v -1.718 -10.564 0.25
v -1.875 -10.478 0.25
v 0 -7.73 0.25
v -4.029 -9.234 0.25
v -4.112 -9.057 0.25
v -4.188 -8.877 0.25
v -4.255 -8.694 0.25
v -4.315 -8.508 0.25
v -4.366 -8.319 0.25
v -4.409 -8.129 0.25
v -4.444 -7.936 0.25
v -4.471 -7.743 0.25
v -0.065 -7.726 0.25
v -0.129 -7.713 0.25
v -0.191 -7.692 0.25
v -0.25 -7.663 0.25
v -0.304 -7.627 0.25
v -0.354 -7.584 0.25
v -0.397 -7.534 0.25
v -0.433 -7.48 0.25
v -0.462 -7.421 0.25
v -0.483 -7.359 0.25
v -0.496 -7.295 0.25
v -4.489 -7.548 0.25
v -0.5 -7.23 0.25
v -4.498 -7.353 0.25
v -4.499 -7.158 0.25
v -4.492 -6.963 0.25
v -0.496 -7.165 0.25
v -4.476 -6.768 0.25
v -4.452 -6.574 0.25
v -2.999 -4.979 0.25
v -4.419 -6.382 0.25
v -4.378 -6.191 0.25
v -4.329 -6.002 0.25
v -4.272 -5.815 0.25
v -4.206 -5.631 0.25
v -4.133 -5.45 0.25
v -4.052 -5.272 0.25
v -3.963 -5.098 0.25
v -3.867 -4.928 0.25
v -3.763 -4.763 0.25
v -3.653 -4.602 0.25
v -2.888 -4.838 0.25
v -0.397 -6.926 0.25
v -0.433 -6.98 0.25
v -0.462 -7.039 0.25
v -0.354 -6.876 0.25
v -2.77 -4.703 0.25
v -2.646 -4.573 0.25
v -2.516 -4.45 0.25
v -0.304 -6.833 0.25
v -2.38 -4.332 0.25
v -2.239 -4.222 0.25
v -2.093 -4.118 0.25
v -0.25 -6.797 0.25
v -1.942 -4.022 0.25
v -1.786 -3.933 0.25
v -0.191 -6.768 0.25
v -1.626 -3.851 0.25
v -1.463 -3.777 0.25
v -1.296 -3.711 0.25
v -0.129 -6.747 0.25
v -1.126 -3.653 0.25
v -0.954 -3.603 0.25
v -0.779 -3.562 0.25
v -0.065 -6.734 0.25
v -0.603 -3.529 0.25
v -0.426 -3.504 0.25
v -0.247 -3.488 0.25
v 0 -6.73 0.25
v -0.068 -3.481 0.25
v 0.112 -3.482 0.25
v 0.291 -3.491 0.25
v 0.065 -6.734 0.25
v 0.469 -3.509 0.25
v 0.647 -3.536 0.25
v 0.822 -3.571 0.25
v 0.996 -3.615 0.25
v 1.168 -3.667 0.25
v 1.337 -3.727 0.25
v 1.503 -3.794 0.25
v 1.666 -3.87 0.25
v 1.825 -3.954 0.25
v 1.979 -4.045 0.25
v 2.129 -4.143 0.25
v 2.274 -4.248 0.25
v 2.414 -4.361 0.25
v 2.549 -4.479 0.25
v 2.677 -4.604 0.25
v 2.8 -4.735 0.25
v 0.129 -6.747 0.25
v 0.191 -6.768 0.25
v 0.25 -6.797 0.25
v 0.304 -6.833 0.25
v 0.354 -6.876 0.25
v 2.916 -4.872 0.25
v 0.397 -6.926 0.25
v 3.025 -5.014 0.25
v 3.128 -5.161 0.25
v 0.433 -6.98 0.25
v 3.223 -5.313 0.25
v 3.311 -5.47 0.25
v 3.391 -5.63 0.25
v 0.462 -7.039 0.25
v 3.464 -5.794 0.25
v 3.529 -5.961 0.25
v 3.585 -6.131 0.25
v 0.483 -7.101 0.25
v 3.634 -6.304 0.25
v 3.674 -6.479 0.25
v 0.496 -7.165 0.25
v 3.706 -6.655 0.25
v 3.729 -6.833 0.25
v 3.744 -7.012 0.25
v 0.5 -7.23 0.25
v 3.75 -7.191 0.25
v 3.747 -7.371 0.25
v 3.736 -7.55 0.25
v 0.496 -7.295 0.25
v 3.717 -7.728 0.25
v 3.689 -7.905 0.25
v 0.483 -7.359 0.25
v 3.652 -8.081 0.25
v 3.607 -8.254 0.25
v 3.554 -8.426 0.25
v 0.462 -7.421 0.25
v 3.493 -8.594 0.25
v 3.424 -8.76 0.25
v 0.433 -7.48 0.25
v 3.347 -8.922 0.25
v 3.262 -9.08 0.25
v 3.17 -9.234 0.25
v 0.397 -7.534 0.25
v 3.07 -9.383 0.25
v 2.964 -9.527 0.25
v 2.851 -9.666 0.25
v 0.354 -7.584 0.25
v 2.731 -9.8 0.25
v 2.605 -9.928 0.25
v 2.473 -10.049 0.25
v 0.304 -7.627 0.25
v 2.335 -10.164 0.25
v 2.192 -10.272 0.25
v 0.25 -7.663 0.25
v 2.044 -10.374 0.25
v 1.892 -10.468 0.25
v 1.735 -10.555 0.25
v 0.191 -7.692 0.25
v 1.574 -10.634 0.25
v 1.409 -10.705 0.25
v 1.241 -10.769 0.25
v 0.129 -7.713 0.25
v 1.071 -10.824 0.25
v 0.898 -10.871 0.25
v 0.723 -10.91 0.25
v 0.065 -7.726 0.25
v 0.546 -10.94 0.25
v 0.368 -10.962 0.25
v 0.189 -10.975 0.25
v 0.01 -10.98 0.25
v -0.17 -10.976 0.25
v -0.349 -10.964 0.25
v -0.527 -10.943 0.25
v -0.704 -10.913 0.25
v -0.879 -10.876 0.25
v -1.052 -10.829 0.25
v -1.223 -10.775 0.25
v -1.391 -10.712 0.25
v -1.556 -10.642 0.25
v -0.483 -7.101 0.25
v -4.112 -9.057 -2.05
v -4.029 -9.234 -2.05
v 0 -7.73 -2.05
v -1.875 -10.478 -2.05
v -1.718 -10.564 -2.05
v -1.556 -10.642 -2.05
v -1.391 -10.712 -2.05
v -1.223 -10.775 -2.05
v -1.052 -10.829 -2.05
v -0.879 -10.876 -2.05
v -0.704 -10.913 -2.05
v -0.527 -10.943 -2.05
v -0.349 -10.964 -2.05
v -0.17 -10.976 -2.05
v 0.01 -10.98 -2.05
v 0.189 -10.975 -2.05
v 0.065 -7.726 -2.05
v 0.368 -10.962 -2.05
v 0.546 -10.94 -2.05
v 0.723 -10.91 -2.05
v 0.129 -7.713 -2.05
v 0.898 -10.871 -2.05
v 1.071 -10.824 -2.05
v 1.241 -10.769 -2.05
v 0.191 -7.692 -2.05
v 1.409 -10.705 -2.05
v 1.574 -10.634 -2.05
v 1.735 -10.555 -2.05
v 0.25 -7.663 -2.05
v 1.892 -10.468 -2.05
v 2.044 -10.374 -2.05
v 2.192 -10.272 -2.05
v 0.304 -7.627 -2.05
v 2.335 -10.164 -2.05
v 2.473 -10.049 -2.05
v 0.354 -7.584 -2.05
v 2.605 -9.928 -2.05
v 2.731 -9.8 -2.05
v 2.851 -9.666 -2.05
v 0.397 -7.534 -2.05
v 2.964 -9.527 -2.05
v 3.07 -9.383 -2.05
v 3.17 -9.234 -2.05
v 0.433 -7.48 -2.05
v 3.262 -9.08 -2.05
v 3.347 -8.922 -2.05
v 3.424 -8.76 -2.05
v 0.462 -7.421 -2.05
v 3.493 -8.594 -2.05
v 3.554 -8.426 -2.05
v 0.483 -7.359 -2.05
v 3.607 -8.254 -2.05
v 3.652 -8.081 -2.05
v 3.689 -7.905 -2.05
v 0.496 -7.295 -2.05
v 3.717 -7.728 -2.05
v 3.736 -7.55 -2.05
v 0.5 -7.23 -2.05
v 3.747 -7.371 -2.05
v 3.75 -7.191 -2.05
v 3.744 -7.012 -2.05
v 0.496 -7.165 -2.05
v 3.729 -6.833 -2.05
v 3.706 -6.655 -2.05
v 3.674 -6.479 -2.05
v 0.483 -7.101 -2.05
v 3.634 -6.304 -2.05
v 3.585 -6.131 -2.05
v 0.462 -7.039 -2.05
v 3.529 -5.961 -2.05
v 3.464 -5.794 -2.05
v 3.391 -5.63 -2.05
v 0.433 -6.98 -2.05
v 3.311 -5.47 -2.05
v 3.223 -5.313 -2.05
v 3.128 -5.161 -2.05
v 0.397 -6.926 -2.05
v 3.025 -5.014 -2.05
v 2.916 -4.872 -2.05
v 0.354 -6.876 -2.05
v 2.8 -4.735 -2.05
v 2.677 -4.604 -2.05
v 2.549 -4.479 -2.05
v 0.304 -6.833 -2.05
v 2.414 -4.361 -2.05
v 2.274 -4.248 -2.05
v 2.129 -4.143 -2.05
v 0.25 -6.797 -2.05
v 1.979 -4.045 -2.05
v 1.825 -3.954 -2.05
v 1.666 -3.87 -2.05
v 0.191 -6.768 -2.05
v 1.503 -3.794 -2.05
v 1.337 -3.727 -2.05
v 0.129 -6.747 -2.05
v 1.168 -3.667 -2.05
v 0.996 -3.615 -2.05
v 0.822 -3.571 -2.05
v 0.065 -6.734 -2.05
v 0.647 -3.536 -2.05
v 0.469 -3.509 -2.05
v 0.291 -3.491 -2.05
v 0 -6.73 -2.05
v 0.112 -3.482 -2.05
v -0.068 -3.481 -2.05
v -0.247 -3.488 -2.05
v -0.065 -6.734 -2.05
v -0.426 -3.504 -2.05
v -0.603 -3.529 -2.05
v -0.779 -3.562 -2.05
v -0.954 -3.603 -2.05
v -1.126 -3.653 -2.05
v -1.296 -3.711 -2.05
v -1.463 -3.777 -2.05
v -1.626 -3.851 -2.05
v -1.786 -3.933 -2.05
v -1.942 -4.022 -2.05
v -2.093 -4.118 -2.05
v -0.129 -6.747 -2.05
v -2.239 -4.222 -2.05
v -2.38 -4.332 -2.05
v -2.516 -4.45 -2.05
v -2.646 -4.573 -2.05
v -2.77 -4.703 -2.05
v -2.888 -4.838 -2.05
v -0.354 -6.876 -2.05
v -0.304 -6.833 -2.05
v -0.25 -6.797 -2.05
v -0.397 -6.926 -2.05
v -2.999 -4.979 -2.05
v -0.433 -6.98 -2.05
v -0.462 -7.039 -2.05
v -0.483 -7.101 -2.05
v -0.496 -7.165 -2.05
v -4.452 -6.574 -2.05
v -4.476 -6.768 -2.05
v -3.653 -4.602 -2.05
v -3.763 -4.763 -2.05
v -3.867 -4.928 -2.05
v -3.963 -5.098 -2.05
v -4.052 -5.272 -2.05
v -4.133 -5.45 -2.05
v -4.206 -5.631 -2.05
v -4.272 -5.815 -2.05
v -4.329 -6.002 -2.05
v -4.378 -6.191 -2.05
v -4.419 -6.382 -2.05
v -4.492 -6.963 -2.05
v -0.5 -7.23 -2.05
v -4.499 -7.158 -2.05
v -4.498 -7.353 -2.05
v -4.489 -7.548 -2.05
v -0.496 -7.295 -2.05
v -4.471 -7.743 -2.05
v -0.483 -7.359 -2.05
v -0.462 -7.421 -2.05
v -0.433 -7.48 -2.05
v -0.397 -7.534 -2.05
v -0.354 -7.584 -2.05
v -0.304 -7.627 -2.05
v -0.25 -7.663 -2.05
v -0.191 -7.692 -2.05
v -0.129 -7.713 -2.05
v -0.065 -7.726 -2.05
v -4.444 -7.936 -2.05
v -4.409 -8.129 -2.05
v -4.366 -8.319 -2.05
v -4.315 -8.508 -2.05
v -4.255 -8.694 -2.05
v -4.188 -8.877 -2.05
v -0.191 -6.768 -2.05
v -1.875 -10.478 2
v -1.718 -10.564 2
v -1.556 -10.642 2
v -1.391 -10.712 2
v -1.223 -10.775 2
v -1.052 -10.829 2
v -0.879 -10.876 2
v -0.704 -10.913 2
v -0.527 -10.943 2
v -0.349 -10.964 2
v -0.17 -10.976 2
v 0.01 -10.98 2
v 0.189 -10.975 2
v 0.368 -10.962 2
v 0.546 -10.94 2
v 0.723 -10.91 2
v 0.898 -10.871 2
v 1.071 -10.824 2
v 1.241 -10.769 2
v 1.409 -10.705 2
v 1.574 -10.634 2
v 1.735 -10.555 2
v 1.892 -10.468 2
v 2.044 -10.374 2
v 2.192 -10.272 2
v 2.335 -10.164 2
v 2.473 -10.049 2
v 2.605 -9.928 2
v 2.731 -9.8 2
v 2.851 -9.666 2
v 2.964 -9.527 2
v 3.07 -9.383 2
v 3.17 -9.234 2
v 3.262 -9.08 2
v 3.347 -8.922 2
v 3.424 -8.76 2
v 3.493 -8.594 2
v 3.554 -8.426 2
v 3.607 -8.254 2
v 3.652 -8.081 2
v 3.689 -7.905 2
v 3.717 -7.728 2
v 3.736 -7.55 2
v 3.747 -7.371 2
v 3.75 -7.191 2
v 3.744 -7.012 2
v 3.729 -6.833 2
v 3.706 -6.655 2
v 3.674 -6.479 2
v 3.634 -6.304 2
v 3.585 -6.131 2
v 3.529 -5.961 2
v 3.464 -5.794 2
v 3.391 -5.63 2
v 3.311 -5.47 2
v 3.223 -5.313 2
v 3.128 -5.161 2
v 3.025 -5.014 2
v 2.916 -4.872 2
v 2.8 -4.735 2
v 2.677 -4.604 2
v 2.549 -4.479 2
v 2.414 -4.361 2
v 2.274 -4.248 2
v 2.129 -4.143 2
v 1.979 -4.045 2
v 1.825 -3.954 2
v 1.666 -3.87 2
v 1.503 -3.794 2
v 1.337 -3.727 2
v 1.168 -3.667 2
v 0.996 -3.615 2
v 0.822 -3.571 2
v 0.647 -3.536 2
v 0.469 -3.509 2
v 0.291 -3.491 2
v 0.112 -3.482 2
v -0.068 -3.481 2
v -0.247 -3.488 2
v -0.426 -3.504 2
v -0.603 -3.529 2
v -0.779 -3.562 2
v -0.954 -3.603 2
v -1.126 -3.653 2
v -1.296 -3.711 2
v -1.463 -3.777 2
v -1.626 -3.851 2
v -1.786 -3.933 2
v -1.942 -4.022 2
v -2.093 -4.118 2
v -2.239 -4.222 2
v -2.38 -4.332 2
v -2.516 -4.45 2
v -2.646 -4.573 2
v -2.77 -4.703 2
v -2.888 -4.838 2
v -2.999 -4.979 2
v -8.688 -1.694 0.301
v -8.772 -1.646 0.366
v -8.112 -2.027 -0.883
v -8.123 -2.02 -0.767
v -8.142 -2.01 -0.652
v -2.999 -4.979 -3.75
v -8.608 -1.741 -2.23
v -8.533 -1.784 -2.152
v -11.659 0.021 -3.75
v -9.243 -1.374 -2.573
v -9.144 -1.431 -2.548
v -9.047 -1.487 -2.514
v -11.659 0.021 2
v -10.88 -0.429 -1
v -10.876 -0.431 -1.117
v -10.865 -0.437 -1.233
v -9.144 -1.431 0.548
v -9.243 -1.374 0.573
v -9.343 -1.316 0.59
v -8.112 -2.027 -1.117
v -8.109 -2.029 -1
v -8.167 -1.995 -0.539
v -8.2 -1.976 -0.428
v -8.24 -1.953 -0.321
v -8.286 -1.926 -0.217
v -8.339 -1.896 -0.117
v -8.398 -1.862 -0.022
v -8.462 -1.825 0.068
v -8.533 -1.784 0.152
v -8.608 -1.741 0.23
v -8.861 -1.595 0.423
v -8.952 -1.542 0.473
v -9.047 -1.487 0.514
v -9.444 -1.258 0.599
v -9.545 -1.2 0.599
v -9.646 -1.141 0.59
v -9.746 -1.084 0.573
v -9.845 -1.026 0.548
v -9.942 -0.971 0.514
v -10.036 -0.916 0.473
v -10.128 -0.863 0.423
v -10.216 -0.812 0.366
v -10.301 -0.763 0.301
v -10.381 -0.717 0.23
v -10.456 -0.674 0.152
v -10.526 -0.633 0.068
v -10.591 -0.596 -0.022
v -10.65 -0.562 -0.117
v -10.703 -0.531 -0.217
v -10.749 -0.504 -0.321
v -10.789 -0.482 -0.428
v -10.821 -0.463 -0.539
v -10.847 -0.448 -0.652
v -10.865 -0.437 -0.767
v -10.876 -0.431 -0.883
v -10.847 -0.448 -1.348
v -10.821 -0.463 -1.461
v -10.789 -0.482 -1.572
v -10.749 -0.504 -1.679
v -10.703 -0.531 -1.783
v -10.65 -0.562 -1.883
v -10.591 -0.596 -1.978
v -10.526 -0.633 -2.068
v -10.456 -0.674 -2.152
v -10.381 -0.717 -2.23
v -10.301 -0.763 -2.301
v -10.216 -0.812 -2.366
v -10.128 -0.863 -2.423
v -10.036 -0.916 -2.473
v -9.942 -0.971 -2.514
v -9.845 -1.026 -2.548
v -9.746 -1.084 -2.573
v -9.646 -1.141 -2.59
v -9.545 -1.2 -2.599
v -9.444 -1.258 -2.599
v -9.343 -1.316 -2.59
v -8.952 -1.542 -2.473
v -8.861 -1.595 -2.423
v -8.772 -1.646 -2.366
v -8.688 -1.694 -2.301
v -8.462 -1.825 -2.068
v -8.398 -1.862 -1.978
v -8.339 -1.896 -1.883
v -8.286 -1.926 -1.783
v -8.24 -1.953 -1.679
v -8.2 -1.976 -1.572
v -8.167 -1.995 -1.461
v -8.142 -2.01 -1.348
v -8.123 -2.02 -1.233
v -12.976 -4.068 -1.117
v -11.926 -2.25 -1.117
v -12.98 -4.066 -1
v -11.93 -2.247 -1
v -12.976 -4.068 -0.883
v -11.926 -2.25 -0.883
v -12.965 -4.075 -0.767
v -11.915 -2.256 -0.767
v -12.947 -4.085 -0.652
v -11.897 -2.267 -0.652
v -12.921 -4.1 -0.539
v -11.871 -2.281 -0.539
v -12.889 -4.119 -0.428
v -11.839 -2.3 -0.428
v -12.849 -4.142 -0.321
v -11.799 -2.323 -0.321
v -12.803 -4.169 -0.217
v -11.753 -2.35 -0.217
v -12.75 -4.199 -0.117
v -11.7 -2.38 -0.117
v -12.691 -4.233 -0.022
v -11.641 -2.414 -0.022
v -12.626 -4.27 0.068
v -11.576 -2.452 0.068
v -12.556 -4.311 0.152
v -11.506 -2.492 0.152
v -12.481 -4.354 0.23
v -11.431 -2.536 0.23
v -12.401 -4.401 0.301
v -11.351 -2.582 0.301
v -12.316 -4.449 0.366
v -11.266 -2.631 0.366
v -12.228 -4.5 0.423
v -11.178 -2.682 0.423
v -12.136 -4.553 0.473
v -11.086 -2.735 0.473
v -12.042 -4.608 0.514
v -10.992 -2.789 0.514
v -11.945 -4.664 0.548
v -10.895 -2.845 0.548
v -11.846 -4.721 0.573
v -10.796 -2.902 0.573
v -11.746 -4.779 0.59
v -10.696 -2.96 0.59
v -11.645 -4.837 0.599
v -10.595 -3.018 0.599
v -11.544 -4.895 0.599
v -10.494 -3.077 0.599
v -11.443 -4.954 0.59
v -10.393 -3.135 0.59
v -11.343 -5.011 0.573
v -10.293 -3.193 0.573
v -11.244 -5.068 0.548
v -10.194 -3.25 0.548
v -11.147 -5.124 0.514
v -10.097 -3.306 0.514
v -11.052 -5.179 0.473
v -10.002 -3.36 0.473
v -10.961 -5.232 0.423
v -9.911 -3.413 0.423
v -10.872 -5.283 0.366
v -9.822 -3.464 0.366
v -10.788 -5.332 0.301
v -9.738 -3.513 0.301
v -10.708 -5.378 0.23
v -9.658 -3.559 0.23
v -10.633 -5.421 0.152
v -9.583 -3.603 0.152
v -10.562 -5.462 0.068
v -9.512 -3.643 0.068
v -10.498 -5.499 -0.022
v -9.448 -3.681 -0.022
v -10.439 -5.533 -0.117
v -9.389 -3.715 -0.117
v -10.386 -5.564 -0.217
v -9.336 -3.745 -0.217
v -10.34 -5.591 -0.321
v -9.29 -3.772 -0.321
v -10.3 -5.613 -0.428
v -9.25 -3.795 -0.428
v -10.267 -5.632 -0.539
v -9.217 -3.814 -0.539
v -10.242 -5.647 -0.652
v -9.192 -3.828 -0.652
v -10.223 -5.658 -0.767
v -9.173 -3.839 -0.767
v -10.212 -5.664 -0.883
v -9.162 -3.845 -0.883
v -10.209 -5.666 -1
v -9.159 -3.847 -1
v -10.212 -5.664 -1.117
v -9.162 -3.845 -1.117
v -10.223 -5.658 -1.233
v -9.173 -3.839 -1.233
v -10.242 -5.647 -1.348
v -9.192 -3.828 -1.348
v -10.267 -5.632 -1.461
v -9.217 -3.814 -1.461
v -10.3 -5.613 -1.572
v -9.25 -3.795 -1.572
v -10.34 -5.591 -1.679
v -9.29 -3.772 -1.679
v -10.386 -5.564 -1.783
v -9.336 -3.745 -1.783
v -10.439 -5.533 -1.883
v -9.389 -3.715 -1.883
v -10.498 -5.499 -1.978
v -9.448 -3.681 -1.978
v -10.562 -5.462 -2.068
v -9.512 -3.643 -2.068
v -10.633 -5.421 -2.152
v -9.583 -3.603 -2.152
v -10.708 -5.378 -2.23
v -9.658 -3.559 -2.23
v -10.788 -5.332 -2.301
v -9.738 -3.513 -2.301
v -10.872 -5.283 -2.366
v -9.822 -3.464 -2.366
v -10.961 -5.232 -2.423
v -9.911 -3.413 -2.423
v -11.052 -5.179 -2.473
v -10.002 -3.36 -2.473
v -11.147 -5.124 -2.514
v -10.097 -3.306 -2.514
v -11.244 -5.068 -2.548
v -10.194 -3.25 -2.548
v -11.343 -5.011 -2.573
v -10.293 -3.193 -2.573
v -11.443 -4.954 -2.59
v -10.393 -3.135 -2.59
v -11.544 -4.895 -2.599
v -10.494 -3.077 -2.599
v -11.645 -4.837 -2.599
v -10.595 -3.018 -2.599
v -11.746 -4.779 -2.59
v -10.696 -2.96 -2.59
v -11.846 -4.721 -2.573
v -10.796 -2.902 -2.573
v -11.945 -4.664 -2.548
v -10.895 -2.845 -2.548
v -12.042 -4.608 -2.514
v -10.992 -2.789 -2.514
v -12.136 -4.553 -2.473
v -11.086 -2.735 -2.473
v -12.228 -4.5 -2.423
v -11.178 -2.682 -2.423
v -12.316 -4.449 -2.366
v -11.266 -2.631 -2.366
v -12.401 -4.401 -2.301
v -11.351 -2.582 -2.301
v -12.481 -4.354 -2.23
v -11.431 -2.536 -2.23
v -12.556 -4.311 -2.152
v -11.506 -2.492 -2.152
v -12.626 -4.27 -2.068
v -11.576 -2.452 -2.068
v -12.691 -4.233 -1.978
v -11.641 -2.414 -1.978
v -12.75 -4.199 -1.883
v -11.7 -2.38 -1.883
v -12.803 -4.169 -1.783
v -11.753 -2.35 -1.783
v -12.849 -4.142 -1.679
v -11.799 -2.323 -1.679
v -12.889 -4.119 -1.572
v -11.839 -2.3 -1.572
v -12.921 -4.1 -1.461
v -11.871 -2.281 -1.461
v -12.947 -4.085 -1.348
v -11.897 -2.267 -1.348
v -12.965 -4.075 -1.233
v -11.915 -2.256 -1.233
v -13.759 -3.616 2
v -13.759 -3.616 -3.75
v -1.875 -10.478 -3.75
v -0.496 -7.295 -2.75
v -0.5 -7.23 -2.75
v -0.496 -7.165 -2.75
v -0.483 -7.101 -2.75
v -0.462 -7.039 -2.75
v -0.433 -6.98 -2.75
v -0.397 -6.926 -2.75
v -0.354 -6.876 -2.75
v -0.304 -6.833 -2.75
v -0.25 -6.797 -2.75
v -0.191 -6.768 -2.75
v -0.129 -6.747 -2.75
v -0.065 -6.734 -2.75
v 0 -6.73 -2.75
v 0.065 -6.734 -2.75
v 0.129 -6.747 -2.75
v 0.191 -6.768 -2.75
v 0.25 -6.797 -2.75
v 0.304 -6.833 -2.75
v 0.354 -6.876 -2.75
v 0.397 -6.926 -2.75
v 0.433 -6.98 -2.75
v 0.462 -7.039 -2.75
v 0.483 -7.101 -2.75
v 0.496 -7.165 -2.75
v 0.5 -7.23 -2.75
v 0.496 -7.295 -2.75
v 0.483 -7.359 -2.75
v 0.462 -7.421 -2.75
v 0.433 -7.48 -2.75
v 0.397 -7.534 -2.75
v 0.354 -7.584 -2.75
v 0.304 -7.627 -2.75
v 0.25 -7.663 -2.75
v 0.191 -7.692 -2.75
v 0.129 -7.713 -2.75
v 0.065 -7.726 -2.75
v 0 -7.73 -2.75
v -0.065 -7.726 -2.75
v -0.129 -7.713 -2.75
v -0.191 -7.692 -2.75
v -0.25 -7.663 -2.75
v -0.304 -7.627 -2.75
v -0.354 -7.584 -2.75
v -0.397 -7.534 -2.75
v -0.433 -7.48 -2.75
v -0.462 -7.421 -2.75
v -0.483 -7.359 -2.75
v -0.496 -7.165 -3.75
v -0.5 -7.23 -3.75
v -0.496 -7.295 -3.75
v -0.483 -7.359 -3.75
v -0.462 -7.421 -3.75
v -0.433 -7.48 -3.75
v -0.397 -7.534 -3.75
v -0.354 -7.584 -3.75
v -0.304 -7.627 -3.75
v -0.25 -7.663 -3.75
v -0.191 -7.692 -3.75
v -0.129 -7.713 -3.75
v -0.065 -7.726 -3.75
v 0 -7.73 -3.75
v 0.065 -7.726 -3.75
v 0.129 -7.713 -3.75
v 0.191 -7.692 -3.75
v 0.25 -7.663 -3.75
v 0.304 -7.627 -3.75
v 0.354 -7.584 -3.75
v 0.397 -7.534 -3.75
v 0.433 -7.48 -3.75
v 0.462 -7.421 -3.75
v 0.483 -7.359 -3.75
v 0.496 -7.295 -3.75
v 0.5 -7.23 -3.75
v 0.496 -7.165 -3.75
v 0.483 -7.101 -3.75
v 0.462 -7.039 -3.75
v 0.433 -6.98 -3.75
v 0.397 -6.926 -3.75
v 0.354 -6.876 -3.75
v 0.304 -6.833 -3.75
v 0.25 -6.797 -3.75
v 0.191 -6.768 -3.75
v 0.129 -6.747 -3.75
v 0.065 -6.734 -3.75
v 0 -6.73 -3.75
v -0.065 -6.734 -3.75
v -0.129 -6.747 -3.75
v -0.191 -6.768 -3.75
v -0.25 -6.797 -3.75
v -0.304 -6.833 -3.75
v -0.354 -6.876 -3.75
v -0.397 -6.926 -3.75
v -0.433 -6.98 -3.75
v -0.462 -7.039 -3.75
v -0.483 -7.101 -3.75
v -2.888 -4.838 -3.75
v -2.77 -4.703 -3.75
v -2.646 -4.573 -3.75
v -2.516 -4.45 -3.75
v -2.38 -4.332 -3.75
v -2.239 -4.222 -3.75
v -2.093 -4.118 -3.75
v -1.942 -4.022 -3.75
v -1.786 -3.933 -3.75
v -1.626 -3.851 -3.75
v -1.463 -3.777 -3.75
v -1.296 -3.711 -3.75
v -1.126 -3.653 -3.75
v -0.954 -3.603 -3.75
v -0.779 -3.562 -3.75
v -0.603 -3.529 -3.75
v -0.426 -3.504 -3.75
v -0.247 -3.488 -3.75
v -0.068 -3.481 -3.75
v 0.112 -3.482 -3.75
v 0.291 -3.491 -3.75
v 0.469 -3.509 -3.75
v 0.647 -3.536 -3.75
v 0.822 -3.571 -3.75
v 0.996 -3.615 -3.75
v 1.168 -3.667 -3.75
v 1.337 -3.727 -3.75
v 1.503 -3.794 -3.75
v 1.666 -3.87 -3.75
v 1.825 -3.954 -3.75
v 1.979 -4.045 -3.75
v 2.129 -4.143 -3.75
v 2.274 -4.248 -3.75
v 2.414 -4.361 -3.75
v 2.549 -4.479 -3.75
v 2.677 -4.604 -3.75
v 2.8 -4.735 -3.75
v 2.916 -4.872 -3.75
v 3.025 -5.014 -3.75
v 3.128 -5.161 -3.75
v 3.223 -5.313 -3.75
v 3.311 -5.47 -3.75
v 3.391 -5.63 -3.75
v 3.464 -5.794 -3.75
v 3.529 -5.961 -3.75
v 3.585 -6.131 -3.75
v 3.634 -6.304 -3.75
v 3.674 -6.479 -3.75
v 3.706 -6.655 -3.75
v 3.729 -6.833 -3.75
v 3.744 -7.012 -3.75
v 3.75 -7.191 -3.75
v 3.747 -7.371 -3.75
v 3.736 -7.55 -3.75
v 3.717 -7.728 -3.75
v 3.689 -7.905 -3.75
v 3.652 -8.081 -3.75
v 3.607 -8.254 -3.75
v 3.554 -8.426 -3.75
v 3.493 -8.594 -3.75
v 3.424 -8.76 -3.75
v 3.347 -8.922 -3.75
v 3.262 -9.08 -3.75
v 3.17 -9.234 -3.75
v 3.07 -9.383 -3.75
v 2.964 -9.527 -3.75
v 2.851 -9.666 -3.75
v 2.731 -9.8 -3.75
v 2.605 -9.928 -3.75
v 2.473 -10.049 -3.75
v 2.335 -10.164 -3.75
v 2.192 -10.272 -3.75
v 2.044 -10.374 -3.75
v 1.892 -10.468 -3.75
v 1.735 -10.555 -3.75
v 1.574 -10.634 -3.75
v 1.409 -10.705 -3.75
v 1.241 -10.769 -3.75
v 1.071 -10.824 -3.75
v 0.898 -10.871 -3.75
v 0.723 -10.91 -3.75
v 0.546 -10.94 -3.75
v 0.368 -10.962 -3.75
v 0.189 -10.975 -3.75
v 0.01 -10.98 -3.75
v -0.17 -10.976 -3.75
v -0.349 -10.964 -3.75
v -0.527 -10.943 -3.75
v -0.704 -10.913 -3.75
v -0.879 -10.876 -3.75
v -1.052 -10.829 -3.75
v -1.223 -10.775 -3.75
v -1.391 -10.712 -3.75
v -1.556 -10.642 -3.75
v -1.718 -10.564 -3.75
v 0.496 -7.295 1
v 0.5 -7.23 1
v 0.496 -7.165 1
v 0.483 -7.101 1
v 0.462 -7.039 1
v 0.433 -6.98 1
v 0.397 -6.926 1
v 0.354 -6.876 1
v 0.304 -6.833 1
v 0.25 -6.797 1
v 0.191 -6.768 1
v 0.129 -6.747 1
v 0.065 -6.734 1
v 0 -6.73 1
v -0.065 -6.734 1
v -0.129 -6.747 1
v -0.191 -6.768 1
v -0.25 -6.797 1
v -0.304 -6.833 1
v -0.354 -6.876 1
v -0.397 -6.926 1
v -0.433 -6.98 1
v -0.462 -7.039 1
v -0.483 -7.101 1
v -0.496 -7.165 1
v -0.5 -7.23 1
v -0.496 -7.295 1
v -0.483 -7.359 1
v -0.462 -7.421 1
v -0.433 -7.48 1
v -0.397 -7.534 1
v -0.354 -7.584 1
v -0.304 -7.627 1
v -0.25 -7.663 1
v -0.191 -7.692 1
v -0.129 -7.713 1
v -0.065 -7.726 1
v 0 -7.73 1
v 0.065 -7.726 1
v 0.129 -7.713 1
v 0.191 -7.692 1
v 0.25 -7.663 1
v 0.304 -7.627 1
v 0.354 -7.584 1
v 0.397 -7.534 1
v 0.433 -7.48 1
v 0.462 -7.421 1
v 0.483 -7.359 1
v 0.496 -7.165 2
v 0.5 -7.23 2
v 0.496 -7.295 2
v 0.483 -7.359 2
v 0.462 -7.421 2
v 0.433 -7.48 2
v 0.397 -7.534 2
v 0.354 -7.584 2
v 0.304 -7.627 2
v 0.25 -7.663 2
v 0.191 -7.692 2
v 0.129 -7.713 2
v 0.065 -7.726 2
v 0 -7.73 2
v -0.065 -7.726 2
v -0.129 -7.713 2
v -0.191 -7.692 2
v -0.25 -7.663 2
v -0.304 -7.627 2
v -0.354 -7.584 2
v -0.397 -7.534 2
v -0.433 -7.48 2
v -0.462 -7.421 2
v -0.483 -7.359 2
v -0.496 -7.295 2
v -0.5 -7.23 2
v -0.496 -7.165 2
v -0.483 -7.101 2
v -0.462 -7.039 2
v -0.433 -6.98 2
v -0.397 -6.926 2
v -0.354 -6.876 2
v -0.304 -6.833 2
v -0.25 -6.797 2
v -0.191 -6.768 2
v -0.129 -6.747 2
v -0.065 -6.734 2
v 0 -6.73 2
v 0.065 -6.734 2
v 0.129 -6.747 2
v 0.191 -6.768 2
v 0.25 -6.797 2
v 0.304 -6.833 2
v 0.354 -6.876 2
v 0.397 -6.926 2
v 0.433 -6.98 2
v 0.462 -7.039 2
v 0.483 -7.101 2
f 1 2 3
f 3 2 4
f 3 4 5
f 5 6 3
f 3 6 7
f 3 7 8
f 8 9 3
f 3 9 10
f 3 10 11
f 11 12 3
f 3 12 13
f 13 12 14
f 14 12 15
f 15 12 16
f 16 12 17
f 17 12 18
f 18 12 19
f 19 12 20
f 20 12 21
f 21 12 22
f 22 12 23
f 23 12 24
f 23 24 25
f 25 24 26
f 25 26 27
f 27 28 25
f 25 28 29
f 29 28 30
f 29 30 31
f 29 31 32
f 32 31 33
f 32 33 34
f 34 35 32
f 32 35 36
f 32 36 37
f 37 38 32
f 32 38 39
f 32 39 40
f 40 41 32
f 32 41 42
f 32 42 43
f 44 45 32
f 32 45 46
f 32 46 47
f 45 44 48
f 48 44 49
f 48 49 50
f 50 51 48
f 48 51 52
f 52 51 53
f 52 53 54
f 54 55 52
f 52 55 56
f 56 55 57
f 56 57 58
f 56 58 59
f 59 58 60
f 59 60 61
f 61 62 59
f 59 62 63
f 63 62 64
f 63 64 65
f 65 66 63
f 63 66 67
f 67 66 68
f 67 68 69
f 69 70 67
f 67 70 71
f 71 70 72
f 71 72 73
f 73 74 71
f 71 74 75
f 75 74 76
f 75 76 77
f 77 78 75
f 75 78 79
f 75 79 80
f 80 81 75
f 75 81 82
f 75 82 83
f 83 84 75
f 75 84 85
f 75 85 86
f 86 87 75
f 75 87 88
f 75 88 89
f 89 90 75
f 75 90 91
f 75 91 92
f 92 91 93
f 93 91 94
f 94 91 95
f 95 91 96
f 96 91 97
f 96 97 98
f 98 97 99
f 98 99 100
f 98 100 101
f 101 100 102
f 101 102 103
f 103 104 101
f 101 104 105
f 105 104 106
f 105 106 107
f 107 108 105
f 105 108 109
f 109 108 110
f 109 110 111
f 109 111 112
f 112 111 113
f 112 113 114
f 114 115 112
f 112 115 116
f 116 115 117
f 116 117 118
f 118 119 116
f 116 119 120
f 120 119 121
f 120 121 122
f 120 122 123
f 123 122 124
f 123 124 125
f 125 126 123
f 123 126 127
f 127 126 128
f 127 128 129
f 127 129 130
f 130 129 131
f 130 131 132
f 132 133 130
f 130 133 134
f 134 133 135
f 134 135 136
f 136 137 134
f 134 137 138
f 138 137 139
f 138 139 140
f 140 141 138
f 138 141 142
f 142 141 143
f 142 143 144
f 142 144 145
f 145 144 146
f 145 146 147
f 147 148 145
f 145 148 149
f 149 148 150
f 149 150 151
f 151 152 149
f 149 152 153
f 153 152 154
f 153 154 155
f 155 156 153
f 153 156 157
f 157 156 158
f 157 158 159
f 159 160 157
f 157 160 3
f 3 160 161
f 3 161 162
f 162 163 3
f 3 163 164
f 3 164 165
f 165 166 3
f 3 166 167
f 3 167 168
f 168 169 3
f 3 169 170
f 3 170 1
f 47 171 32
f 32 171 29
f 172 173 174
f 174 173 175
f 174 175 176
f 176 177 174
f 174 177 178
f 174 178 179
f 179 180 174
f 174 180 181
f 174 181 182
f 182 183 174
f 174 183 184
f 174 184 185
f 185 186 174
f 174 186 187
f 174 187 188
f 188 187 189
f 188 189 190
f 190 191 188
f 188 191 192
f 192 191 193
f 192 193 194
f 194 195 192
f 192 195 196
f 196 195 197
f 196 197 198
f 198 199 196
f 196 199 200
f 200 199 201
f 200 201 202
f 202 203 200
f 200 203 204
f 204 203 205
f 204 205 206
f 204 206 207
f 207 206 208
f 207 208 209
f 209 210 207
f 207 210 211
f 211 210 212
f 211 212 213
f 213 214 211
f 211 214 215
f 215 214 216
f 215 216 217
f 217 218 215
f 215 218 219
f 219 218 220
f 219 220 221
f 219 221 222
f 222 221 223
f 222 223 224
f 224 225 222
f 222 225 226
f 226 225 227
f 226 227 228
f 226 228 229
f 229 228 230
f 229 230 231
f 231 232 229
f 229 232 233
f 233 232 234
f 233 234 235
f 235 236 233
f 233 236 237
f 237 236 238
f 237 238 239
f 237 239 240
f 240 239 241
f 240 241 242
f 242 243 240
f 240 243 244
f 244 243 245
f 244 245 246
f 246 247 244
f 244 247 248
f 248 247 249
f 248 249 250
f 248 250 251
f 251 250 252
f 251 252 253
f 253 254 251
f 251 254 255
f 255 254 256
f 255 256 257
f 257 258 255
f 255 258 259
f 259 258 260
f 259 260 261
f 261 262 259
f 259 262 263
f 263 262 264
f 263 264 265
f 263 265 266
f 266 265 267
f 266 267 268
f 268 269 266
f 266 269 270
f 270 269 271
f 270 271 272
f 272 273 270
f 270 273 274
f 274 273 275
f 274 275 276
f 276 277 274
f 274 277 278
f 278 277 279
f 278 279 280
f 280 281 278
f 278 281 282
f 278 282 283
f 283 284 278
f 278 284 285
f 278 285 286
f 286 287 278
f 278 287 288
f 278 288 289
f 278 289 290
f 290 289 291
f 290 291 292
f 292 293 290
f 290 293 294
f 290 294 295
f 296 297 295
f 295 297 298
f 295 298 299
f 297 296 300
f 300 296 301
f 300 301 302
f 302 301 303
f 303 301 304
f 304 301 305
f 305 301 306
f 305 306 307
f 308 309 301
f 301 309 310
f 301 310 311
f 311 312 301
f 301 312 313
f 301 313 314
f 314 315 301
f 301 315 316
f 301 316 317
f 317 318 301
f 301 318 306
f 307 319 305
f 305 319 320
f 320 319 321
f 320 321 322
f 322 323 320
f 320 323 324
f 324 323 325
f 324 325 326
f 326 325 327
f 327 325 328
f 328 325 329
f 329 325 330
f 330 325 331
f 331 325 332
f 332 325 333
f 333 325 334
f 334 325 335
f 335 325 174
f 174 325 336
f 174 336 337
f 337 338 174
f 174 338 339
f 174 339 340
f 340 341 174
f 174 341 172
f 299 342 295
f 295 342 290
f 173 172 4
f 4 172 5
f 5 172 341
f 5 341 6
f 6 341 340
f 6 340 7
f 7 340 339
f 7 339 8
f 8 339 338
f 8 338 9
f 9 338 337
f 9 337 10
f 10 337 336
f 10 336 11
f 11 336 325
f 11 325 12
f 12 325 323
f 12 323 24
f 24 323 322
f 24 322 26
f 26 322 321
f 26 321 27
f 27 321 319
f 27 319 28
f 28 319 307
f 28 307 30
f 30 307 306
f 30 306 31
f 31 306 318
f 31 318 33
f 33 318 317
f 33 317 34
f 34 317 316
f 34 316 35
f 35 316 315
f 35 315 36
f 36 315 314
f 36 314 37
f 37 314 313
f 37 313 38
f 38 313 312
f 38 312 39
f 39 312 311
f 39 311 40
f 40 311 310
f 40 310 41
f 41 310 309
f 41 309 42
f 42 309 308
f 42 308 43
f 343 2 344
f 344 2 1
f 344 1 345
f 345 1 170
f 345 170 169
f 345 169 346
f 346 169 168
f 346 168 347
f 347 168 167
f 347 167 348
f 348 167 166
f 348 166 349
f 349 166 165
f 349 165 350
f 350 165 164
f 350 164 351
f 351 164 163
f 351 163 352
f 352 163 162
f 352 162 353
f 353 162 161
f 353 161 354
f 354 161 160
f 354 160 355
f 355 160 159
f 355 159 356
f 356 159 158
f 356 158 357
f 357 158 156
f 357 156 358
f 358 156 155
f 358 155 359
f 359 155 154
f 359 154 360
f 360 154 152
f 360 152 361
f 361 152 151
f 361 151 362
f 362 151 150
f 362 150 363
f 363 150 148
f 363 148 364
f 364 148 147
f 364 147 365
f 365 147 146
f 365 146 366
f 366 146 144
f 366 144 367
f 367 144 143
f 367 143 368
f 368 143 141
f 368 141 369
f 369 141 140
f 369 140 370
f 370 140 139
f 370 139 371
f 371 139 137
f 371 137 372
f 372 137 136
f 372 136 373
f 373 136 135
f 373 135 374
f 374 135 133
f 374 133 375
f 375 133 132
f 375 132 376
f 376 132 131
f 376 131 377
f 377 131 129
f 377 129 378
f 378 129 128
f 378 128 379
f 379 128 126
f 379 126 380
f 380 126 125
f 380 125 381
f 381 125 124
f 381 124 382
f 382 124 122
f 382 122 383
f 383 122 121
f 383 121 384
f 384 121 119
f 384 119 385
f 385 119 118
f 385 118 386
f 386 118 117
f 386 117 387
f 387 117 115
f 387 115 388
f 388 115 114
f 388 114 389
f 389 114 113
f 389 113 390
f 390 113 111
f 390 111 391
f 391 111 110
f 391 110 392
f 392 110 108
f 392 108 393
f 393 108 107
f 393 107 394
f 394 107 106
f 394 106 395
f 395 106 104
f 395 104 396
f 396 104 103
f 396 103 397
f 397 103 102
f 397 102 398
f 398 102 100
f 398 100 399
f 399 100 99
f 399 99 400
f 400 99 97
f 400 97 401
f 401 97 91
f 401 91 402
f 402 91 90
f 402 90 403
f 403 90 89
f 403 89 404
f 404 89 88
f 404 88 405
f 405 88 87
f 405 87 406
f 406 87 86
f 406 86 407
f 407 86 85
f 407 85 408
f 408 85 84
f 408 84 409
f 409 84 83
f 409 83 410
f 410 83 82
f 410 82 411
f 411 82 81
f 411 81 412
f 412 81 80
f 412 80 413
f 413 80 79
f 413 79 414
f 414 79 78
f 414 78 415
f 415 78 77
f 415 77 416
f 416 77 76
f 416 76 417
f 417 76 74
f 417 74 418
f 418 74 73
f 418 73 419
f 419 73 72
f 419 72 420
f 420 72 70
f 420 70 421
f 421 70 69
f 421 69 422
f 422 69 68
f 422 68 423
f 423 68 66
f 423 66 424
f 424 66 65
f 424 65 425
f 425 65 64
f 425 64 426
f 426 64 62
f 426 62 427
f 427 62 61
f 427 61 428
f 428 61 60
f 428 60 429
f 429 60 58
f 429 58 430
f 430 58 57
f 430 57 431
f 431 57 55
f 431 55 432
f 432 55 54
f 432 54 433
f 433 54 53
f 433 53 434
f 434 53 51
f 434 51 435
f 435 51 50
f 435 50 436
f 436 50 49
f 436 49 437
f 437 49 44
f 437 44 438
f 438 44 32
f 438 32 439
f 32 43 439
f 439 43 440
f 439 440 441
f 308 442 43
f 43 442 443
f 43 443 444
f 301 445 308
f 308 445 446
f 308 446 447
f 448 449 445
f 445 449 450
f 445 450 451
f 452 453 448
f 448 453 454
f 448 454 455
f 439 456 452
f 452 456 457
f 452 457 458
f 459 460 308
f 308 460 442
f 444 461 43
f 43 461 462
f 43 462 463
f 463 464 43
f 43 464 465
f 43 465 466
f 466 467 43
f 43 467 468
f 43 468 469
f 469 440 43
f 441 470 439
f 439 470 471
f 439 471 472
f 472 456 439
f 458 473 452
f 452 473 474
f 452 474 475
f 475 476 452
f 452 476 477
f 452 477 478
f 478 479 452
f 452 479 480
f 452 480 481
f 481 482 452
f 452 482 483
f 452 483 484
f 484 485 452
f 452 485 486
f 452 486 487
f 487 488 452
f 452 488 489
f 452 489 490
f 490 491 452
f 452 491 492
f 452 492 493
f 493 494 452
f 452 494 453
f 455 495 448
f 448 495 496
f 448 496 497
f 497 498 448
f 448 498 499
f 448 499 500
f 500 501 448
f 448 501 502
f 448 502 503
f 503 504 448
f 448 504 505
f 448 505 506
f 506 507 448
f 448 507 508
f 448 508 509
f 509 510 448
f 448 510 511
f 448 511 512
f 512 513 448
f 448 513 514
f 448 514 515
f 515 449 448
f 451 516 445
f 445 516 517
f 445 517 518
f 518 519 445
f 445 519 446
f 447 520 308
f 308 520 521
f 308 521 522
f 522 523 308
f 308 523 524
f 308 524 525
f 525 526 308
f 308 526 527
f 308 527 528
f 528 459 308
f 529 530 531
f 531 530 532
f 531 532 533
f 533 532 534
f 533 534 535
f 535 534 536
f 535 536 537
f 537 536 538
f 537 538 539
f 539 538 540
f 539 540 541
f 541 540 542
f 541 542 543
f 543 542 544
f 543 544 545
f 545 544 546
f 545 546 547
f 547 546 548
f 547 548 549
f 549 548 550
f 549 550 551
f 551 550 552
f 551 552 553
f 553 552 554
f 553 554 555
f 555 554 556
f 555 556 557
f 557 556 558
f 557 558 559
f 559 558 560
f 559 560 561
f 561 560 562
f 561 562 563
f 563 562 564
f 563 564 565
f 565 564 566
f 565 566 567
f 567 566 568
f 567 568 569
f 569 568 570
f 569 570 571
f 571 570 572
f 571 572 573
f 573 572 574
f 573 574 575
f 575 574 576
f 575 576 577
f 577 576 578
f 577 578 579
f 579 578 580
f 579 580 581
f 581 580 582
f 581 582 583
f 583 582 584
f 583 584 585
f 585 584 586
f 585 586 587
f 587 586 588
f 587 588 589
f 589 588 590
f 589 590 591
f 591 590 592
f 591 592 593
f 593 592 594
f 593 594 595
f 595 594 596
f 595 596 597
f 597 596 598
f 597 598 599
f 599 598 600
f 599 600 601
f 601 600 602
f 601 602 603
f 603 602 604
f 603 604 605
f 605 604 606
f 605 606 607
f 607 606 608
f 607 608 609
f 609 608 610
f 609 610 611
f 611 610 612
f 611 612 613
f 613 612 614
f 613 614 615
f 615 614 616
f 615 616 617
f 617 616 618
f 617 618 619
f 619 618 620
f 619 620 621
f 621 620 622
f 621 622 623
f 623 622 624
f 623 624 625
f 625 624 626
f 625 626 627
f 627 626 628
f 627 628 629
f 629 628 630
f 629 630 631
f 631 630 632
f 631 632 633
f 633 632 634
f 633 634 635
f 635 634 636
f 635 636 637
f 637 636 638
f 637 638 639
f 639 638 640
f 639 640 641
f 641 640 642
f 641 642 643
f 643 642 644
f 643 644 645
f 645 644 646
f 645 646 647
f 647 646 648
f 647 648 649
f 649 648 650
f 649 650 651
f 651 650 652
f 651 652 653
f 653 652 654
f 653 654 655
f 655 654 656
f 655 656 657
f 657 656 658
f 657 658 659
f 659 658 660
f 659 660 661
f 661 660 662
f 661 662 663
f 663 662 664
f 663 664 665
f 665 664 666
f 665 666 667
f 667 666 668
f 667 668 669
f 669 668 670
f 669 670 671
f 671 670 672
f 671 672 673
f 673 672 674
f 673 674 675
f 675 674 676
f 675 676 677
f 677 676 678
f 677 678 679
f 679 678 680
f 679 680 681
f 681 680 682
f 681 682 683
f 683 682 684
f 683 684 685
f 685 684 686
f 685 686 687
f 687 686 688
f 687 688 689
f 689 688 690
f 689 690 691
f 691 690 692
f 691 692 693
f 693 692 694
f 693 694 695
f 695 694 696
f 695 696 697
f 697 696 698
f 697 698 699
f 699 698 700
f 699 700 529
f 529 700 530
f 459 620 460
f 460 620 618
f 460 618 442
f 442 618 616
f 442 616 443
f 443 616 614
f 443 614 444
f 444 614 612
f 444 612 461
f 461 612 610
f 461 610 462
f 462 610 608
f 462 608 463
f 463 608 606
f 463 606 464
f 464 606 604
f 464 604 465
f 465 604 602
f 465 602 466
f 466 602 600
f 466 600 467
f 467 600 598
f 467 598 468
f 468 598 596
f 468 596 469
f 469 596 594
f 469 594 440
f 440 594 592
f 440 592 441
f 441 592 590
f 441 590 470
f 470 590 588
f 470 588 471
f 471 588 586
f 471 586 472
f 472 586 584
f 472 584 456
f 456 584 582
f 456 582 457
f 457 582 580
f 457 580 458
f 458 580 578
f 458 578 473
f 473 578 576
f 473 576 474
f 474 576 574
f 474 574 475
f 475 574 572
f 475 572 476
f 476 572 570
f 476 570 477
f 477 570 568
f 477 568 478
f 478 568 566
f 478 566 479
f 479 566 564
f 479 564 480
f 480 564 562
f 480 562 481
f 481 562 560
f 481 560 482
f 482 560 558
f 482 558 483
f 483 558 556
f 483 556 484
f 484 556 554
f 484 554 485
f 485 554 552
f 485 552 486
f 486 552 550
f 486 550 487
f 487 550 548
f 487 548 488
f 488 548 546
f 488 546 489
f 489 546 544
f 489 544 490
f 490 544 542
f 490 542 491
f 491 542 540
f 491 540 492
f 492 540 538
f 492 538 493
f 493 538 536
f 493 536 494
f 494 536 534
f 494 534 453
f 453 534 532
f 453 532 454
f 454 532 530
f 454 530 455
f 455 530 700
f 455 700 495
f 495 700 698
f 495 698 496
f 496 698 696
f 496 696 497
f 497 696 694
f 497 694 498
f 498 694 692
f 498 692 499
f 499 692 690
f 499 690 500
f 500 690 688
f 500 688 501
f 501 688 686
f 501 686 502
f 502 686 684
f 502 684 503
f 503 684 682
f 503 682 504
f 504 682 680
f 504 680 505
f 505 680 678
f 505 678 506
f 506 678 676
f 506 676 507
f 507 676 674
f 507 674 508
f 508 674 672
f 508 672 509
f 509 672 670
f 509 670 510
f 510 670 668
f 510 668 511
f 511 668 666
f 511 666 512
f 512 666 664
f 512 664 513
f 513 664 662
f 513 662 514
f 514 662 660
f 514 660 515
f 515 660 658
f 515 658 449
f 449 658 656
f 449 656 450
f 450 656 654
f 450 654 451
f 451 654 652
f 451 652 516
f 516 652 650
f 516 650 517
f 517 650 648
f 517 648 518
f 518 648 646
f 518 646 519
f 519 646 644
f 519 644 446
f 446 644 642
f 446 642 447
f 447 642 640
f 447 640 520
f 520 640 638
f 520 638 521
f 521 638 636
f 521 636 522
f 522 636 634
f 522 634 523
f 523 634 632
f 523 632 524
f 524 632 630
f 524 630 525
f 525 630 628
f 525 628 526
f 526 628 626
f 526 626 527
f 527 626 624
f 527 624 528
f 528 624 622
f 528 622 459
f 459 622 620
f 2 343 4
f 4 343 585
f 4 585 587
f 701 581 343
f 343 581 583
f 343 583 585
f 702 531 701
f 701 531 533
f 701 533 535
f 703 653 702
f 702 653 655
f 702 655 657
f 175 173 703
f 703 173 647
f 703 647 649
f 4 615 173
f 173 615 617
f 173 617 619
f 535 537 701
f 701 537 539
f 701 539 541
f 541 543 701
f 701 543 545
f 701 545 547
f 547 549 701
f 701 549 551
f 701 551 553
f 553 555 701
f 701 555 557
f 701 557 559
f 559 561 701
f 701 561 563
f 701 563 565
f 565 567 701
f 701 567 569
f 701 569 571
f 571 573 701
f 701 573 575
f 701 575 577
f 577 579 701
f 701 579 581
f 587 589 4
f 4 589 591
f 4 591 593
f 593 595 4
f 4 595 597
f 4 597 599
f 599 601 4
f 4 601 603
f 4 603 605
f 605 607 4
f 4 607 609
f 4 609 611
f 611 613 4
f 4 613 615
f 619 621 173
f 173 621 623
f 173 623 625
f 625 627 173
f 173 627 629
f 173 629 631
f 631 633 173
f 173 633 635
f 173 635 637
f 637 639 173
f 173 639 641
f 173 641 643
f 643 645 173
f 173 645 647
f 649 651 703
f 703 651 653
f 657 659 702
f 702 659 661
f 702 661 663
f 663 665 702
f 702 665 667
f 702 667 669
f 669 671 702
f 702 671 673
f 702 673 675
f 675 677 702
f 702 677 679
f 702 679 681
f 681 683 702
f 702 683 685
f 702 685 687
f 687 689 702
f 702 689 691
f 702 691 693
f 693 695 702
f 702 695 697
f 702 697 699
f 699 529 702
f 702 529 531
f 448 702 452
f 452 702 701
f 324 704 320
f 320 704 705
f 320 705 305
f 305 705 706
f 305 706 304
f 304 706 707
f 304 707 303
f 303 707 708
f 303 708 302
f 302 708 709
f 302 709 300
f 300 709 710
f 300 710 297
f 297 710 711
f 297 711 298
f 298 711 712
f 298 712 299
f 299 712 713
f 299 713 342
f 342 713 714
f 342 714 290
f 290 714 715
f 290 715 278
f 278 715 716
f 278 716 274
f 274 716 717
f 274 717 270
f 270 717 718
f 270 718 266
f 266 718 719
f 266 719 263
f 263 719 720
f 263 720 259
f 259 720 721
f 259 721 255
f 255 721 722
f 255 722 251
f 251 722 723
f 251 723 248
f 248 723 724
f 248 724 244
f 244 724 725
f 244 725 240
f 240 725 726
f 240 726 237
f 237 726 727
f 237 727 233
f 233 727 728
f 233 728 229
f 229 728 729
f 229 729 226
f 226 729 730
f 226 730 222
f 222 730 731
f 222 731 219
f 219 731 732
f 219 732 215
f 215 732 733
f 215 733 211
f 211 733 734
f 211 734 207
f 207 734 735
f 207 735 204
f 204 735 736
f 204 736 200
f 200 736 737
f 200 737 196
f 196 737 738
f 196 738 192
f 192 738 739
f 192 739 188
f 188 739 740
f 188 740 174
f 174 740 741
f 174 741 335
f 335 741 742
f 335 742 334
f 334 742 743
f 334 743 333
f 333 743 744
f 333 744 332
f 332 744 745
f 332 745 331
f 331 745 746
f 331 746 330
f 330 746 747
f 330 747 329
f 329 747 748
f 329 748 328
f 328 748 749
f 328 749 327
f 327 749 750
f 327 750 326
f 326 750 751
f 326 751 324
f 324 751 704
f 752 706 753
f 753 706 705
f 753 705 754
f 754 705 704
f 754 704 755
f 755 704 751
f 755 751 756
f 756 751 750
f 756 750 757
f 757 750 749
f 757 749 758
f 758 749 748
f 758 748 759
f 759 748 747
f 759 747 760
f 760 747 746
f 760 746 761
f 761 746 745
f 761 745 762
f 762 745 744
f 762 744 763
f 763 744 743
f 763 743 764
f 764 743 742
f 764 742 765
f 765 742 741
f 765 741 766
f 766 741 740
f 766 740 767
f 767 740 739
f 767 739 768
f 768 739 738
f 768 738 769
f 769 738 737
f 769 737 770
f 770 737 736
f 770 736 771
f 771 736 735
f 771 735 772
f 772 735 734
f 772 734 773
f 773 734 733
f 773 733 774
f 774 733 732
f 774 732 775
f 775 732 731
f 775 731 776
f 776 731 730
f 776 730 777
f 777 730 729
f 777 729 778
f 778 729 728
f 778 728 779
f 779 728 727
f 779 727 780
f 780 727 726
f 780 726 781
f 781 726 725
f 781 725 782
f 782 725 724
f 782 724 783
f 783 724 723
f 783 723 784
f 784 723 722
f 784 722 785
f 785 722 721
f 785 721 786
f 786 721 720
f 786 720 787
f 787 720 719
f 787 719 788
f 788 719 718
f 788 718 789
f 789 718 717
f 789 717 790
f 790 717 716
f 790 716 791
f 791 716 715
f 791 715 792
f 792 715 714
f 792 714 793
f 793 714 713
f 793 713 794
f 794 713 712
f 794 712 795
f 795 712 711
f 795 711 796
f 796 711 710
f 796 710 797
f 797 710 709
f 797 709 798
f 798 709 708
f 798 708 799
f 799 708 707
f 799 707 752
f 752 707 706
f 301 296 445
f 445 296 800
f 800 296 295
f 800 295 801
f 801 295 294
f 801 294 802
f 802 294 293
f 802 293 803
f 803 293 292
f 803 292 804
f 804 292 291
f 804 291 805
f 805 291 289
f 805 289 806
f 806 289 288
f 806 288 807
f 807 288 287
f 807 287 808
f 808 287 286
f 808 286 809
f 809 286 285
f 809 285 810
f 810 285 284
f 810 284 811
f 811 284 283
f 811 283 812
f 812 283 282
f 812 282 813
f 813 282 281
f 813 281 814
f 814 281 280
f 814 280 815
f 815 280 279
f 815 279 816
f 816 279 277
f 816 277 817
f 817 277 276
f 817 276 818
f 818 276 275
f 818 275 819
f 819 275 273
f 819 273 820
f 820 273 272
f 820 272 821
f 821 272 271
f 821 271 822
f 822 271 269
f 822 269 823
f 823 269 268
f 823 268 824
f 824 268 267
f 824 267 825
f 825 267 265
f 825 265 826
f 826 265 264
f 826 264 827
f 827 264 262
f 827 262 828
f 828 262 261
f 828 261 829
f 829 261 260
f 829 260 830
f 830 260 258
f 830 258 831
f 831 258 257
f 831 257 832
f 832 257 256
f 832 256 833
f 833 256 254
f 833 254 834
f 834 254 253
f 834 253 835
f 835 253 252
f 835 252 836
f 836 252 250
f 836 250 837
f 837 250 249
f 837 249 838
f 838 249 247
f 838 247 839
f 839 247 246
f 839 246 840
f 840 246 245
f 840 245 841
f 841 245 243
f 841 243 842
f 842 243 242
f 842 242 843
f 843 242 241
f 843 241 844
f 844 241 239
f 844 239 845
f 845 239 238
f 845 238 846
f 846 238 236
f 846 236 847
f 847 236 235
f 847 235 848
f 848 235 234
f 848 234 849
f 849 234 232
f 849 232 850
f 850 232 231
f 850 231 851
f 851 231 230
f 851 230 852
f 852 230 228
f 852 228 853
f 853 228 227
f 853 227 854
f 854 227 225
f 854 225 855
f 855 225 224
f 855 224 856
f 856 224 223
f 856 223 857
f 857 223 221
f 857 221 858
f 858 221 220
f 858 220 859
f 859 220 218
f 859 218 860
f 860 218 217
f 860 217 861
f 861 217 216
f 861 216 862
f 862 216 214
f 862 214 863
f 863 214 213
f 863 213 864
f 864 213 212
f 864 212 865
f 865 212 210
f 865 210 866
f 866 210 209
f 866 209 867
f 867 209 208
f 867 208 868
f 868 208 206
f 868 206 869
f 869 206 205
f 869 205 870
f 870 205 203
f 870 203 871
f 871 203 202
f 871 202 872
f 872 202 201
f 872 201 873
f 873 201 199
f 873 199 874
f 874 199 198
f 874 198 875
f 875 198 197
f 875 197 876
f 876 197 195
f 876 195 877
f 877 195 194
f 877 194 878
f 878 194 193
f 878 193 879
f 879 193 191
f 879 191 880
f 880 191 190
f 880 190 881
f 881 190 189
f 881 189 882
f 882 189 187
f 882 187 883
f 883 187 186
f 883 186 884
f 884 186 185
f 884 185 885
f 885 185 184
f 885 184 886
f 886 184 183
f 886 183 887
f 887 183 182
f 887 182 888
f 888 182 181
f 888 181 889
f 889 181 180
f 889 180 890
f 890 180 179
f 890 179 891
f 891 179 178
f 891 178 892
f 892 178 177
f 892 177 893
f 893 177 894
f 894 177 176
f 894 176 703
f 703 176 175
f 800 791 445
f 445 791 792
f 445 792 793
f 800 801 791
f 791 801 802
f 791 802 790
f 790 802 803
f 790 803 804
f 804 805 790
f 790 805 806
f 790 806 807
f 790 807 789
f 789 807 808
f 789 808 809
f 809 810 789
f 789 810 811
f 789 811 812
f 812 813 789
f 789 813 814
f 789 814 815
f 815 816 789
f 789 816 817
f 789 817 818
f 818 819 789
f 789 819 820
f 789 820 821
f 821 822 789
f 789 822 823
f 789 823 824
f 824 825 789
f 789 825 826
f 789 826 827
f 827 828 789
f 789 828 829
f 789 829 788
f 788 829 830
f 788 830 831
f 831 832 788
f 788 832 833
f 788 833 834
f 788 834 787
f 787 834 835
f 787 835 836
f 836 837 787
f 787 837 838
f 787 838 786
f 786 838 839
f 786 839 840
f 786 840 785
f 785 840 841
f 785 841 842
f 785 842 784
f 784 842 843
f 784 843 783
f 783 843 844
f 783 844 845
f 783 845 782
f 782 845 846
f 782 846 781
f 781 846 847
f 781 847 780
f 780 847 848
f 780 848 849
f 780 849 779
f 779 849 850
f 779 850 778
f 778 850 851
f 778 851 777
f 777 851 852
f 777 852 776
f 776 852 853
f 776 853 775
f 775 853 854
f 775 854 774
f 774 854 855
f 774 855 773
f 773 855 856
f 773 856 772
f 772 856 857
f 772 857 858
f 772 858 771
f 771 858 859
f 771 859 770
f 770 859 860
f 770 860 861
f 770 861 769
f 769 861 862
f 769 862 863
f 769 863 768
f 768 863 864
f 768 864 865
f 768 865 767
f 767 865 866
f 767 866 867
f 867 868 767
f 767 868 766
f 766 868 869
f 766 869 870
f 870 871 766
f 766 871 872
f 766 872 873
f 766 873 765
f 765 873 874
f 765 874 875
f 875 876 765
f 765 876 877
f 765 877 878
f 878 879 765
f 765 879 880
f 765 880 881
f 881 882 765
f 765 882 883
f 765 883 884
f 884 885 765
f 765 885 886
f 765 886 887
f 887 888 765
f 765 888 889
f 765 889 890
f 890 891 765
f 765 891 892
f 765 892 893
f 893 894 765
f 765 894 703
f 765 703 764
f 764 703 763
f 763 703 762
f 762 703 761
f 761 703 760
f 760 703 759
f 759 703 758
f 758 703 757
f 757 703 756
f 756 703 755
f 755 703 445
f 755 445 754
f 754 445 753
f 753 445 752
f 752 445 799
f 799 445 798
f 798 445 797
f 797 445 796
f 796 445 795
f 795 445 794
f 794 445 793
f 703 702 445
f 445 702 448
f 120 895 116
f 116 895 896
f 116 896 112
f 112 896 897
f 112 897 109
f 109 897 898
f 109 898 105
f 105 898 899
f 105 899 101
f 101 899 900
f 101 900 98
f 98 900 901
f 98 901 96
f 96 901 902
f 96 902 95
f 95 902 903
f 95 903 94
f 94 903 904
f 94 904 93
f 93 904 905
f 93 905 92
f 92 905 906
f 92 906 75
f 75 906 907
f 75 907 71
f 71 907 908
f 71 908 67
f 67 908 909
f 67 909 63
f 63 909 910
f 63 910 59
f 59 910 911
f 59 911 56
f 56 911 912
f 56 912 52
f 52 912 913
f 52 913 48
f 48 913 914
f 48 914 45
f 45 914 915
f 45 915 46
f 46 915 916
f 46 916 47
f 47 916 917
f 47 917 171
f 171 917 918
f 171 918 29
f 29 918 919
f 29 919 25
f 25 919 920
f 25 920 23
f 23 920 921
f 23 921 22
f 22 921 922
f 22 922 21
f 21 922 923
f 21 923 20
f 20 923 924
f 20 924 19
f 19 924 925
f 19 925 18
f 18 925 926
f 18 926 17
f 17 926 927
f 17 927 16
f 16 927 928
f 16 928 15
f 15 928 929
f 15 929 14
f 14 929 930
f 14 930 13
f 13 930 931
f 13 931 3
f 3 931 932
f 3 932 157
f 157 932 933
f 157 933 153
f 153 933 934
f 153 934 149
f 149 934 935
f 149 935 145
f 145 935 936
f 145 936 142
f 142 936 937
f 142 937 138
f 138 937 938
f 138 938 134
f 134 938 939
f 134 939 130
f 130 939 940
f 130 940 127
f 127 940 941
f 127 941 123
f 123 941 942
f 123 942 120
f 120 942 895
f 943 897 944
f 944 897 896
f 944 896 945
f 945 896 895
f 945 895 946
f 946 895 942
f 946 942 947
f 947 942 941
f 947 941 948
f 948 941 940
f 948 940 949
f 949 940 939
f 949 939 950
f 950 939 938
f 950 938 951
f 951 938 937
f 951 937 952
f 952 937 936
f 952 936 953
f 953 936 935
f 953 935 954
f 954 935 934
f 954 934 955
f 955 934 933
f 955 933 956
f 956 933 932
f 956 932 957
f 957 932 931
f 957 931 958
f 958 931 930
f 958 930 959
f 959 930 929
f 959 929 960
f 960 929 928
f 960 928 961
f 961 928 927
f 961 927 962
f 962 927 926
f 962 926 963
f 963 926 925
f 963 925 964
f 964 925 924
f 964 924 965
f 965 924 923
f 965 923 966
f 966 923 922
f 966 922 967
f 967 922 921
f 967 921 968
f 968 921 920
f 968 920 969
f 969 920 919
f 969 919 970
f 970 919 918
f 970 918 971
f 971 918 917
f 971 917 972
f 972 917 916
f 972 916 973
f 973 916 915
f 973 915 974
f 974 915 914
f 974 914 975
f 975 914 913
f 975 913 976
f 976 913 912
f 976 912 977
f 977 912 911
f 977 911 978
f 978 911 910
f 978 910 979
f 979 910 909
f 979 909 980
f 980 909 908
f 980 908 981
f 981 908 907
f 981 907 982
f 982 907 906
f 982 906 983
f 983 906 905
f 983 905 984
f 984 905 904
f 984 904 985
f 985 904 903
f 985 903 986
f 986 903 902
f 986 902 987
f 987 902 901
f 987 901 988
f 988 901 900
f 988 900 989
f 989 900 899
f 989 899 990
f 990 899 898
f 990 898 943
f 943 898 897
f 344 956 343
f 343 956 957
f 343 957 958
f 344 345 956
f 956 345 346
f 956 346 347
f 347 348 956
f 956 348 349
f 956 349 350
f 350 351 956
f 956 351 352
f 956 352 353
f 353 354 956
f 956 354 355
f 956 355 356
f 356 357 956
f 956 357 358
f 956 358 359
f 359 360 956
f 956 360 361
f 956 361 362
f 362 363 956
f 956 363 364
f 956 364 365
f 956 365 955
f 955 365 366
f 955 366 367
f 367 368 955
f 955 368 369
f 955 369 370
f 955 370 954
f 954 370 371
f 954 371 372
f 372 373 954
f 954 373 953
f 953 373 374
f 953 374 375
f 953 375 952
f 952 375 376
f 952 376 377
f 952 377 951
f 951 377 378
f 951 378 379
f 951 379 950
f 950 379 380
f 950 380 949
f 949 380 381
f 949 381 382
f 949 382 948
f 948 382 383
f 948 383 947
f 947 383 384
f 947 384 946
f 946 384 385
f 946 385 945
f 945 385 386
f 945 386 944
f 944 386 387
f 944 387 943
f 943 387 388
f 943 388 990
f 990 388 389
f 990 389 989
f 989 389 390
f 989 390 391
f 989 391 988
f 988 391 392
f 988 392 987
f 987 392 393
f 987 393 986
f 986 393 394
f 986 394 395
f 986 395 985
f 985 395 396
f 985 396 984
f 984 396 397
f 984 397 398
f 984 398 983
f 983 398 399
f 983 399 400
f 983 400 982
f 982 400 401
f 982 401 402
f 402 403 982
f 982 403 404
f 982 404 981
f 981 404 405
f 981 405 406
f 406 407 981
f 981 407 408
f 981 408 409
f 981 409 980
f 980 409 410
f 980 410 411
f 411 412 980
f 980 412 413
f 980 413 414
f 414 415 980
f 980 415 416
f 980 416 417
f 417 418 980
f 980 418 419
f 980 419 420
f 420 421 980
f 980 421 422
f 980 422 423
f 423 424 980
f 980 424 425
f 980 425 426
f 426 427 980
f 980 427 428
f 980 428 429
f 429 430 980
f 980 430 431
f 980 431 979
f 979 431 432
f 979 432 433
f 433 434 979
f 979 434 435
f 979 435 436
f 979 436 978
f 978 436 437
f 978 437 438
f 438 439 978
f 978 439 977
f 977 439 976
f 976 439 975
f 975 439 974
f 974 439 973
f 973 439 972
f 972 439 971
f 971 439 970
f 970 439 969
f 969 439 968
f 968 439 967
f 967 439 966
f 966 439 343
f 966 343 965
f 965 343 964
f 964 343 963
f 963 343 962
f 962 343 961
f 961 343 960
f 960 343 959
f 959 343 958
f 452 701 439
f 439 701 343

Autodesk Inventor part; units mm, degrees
ref_plane "YZ Plane" through (0, 0, 0) normal (1, 0, 0) x (0, 1, 0)
ref_plane "XZ Plane" through (0, 0, 0) normal (0, 1, 0) x (-1, 0, 0)
ref_plane "XY Plane" through (0, 0, 0) normal (0, 0, 1) x (1, 0, 0)
sketch "Sketch1" plane through (0, 0, 0) normal (0, 0, 1) x (1, 0, 0)
  circle A0 centre (0, -7.23) radius 0.5 projected
  circle A1 centre (0, -7.23) radius 3.75
  point P0 (0, 0)
  dimension "d0" = 7.5
extrude "Extrusion1" add sketch "Sketch1" along normal blind 2
ref_plane "Work Plane1" through (0, 0, -1.75) normal (0, 0, -1) x (-1, 0, 0)
sketch "Sketch2" plane through (0, 0, -1.75) normal (0, 0, -1) x (-1, 0, 0)
  circle A0 centre (0, -7.23) radius 0.5 projected
  circle A1 centre (0, -7.23) radius 3.75 projected
  circle A2 centre (0, -7.23) radius 0.5 projected
  point P0 (0, 0)
extrude "Extrusion2" add sketch "Sketch2" along normal blind 2
sketch "Sketch3" plane through (0, -7.23, 2) normal (0, 0, 1) x (1, 0, 0)
  line L0 (-1.7434, -1.6216) -> (-2.9, 11.6822) construction
  arc A0 (-1.7434, -1.6216) -> (1.7434, -1.6216) centre (0, -1.47) ccw construction
  line L1 (1.7434, -1.6216) -> (2.9, 11.6822) construction
  arc A1 (2.9, 11.6822) -> (-2.9, 11.6822) centre (0, 13.98) ccw construction
  circle A2 centre (0, 13.98) radius 2.7 construction
  circle A3 centre (0, 6.21) radius 0.5 construction
  circle A4 centre (0, 8.28) radius 0.5 construction
  circle A5 centre (0, -2.07) radius 0.5 construction
  circle A6 centre (0, 0) radius 0.5 construction
  circle A7 centre (0, 2.07) radius 0.5 construction
  circle A8 centre (0, 4.14) radius 0.5 construction
  circle A9 centre (0, 0) radius 3.75 projected
  circle A10 centre (0, 0) radius 3.75 projected
  line L2 (-2.9991, 2.2512) -> (-11.6594, 7.2512)
  line L3 (-1.875, -3.2476) -> (-13.7594, 3.6139)
  line L4 (-12.9585, 11.9353) -> (6.9601, 0.4353) projected
  line L5 (-11.6594, 7.2512) -> (-13.7594, 3.6139)
  point P0 (0, 7.23)
  point P1 (-1.875, -3.2476)
  dimension "d5" = 90
  dimension "d6" = 4.2
  dimension "d7" = 10
extrude "Extrusion3" add sketch "Sketch3" against normal up to surface (5.75 mm away) contours A9 L3 L5 L2
sketch "Sketch4" plane through (-11.6594, 0.0212, 2) normal (0.5, 0.866, 0) x (0.866, -0.5, 0)
  line L0 (10, 5.75) -> (0, 5.75) projected
  line L1 (0, 0) -> (0, 5.75) projected
  line L2 (10, 0) -> (0, 0) projected
  line L3 (10, 2) -> (10, 0) projected
  line L4 (10, 2) -> (10, 3.75) projected
  line L5 (10, 5.75) -> (10, 3.75) projected
  circle A0 centre (2.5, 3) radius 1.6
  point P0 (10.1079, 2)
  dimension "d10" = 3.2
  dimension "d11" = 2.5
  dimension "d12" = 3
extrude "Extrusion4" cut sketch "Sketch4" against normal through all contours A0
sketch "Sketch5" plane through (0, 0, -1.75) normal (0, 0, 1) x (1, 0, 0)
  arc A0 (-1.875, -10.4776) -> (-2.9991, -4.9788) centre (0, -7.23) ccw construction
  circle A1 centre (0, -7.23) radius 0.5 construction
  circle A2 centre (0, -7.23) radius 4.5
  point P0 (0, 0)
  dimension "d15" = 9
extrude "Extrusion5" cut sketch "Sketch5" along normal blind 2 and the other way blind 0.3
properties part number "Palanca servo_dedo_1"
